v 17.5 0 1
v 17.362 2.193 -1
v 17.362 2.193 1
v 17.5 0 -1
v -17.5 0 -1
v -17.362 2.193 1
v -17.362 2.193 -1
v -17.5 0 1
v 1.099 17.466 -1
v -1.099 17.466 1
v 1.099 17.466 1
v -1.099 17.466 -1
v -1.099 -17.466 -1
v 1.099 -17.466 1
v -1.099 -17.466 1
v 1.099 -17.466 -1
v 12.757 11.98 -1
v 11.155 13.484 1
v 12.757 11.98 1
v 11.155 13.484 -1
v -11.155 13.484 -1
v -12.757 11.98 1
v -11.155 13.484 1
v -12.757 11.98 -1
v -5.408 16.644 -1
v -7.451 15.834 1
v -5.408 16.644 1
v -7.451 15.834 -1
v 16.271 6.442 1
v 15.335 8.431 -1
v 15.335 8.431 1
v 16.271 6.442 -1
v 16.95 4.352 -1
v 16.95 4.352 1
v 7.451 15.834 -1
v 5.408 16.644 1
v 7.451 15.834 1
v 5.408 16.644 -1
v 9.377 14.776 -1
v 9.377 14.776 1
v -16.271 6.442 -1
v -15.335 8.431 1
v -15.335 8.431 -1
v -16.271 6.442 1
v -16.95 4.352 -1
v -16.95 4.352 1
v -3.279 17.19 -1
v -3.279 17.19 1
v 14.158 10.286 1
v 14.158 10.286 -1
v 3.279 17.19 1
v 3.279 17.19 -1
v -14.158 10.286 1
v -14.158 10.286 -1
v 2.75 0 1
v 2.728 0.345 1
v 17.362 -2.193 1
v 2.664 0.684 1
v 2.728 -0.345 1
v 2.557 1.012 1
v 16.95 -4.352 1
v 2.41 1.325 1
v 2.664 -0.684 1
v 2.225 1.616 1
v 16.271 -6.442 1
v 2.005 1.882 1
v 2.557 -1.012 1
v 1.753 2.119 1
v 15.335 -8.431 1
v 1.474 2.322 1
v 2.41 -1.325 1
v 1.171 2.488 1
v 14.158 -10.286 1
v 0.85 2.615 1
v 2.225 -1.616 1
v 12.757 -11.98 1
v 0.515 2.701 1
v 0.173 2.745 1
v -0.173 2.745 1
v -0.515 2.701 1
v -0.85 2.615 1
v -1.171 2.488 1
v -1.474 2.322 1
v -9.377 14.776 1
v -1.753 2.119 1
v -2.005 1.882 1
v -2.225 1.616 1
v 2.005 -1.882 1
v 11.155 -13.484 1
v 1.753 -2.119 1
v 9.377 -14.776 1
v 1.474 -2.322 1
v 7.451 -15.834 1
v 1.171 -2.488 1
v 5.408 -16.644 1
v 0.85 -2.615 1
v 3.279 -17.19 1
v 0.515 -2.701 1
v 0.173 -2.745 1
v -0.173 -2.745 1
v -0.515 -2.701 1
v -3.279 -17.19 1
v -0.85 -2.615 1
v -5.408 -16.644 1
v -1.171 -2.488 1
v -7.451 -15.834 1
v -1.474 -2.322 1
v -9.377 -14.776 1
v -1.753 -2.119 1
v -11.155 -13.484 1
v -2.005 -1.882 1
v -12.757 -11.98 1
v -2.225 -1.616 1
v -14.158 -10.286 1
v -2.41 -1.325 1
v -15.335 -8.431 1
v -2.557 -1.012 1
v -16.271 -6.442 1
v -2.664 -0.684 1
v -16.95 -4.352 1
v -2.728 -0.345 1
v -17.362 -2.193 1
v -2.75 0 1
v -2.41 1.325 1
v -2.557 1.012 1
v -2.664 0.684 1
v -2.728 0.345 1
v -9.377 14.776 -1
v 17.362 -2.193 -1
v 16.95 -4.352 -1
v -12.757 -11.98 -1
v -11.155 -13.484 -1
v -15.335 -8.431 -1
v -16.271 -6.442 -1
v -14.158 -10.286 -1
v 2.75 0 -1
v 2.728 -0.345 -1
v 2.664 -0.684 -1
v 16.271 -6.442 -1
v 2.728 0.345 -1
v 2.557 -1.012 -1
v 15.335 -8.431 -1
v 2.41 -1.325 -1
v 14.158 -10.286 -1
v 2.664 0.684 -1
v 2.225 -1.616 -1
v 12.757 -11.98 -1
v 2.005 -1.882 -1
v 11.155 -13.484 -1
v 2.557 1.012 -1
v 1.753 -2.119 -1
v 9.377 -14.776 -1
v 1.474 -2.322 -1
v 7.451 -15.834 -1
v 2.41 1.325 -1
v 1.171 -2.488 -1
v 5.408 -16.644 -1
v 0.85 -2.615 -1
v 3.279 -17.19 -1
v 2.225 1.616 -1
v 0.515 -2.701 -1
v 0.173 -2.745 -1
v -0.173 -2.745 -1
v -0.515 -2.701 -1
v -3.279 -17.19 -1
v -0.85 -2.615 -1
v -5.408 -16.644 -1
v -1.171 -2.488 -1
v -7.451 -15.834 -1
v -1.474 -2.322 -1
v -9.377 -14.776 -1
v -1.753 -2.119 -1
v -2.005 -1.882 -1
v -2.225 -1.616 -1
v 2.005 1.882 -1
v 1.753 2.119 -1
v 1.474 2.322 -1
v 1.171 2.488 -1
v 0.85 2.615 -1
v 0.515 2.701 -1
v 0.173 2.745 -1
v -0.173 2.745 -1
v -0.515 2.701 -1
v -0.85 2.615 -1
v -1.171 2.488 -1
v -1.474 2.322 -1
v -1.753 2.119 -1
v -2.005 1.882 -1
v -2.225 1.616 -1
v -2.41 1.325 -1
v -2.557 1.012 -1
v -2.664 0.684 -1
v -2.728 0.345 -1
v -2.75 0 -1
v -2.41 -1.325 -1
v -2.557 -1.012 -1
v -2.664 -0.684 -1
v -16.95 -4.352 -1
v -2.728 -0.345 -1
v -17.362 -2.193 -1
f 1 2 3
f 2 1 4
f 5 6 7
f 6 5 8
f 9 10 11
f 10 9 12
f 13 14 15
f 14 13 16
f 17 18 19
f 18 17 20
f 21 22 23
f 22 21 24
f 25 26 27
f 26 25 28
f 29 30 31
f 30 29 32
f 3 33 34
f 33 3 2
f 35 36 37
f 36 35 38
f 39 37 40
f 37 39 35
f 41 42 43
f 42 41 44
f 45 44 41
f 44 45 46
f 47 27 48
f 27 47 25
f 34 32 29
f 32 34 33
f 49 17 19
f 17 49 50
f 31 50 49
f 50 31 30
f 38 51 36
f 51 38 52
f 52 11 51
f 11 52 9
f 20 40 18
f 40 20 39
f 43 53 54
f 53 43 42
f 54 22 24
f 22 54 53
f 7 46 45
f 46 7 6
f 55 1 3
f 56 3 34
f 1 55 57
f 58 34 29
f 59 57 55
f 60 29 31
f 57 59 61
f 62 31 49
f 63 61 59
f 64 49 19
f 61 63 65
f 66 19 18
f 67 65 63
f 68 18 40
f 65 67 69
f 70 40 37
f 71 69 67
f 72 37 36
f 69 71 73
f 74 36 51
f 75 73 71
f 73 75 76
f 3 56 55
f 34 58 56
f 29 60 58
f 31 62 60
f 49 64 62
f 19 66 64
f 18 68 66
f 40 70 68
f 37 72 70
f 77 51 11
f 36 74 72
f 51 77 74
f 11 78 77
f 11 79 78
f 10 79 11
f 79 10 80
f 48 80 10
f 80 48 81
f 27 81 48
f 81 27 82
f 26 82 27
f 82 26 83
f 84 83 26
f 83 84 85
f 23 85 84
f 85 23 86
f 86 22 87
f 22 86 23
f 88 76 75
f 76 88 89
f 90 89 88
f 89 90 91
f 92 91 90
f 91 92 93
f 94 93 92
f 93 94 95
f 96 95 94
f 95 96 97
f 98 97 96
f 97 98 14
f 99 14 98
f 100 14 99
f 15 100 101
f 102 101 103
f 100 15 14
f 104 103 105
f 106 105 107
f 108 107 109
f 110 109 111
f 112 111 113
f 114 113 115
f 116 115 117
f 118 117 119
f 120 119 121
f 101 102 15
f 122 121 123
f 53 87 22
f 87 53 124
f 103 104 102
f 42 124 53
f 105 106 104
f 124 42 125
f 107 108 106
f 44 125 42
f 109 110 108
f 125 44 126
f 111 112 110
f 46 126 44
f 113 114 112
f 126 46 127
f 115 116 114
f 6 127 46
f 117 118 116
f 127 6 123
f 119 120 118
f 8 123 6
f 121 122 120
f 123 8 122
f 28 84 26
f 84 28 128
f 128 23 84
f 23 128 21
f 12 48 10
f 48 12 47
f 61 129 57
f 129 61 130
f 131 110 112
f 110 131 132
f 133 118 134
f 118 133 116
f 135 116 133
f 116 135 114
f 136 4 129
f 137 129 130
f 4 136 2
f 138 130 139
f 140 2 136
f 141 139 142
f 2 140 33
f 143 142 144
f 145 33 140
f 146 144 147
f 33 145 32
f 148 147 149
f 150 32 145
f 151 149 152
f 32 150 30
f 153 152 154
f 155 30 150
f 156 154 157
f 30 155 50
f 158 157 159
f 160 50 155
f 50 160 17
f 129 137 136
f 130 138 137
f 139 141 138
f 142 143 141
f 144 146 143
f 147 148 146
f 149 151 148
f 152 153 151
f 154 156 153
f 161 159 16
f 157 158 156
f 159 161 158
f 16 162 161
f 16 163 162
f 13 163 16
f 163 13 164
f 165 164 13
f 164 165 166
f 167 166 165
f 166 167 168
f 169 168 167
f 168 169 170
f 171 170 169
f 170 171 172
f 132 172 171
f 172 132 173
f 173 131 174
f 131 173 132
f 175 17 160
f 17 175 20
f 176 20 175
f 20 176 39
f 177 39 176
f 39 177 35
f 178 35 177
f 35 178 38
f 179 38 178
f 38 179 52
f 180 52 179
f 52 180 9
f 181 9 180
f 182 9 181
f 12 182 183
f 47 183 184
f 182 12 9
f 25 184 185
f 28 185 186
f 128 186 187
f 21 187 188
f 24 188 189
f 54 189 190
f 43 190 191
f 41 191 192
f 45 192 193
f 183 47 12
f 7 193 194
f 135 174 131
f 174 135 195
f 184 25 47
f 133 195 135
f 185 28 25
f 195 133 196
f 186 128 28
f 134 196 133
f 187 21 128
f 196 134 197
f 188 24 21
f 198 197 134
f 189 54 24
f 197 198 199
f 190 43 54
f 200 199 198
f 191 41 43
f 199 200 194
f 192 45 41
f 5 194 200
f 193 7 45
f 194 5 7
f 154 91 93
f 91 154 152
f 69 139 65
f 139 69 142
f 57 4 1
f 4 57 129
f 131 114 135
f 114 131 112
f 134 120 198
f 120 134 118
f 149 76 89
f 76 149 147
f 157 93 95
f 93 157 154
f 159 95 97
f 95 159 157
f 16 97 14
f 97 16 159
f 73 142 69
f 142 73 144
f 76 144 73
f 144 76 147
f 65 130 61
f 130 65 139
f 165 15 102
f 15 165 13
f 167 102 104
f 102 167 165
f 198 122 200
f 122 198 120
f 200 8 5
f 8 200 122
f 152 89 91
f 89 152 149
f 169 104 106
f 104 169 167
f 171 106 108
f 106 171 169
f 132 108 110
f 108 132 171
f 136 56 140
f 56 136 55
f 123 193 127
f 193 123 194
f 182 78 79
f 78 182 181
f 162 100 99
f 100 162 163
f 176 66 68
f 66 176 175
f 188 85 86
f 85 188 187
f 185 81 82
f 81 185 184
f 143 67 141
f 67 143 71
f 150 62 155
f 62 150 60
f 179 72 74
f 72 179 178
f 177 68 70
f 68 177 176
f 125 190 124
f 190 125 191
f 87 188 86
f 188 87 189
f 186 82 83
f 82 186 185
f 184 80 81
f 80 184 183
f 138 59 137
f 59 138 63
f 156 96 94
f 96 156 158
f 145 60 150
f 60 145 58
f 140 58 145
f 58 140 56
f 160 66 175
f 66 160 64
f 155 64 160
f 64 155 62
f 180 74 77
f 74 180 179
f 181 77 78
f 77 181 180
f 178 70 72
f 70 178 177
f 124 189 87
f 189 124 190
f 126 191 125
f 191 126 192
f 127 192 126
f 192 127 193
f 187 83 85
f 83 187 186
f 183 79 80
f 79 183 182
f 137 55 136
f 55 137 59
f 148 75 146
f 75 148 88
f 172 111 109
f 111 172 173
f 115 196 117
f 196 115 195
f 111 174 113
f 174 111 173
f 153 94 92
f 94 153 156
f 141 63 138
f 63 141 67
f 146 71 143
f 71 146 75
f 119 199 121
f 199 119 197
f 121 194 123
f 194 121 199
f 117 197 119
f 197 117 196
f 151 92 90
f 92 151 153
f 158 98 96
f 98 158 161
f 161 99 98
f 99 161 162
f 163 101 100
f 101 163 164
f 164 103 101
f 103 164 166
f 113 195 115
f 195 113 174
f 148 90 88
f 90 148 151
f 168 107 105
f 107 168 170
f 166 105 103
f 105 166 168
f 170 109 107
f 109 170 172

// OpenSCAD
$fn = 50;


difference() {
	union() {
		translate(v = [0, 0, -1.0000000000]) {
			cylinder(h = 2, r = 17.5000000000);
		}
	}
	union() {
		translate(v = [0, 0, -100.0000000000]) {
			cylinder(h = 200, r = 2.7500000000);
		}
	}
}
